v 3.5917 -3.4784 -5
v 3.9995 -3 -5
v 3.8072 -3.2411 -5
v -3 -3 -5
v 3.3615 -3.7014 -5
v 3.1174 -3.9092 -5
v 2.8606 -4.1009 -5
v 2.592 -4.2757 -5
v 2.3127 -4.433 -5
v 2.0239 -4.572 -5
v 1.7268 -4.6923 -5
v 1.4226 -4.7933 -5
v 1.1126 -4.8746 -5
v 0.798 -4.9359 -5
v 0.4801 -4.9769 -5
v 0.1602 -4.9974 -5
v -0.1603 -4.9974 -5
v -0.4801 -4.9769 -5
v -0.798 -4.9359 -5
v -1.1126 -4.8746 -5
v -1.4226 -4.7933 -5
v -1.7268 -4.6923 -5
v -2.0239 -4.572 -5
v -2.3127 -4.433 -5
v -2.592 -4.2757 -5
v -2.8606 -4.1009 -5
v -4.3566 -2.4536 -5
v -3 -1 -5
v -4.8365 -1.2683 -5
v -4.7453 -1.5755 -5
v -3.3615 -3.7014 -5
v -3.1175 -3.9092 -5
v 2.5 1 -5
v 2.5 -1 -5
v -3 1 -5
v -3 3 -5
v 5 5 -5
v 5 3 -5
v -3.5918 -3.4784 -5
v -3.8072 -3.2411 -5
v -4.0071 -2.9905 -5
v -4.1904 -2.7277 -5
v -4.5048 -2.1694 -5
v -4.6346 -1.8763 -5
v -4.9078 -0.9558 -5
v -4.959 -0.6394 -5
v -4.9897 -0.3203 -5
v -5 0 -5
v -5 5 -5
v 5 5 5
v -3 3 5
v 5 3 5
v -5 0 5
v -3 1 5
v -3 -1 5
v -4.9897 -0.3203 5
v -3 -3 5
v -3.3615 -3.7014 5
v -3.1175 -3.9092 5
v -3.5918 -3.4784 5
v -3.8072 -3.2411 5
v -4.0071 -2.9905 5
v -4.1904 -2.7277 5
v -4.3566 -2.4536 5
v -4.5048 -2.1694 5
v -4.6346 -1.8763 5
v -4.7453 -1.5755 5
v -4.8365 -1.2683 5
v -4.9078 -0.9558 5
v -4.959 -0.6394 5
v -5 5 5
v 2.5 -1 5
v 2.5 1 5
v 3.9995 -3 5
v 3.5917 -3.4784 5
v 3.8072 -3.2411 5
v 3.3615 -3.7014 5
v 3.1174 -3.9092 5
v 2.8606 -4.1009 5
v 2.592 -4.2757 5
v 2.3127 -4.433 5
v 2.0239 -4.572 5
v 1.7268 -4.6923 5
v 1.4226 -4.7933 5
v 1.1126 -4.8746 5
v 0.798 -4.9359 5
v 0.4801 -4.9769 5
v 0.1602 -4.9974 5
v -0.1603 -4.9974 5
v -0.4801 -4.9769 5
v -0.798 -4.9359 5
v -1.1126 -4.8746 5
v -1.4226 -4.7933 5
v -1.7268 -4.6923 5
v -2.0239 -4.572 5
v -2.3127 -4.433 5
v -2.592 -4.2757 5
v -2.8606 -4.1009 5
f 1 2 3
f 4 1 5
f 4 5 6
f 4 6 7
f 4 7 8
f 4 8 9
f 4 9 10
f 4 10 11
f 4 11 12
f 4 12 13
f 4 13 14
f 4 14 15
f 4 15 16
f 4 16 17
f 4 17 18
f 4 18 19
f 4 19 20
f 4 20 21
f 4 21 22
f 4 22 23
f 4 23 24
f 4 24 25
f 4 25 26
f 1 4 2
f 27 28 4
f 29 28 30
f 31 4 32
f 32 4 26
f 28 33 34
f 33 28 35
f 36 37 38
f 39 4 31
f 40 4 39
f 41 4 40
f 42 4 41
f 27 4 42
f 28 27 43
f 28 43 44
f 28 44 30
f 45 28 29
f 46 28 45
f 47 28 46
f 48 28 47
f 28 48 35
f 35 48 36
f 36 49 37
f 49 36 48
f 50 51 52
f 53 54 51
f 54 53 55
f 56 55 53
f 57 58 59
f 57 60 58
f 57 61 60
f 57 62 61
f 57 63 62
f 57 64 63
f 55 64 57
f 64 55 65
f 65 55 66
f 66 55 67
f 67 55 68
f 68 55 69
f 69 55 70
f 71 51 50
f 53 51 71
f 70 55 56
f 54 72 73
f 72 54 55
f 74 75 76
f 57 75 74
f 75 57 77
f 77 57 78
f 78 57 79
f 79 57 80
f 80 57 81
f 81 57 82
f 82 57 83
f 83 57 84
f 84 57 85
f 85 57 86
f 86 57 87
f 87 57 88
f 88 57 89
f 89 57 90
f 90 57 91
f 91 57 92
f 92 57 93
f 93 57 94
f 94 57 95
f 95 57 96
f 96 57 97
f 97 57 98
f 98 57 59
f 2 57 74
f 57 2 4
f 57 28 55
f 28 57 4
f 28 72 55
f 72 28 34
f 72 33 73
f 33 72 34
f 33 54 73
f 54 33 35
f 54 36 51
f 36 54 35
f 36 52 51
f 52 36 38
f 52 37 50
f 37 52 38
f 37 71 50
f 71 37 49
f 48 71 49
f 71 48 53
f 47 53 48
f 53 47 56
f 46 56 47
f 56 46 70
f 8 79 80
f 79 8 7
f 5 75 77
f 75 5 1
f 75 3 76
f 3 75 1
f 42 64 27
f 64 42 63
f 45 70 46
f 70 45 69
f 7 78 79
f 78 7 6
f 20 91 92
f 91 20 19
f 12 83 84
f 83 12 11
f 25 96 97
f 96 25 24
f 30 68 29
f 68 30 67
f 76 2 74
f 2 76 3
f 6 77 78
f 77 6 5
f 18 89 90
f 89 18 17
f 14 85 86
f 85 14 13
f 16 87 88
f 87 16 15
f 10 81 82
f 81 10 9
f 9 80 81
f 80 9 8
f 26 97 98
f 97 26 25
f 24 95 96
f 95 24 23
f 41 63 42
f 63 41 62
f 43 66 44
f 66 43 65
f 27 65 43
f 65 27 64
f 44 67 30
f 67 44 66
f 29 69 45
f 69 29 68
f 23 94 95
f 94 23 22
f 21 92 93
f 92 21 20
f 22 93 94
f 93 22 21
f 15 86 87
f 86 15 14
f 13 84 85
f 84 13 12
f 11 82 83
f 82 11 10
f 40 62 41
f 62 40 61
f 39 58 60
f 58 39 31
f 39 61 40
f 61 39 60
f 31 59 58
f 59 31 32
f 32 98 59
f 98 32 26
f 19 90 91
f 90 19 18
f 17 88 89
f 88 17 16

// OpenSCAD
// Generated by SolidPython 1.1.3 on 2025-02-20 04:04:10
$fn=50;


intersection() {
	translate(v = [-5.0000000000, -5.0000000000, -5.0000000000]) {
		linear_extrude(height = 10) {
			polygon(points = [[0, 0], [10, 0], [10, 2.0000000000], [2.0000000000, 2.0000000000], [2.0000000000, 4.0000000000], [7.5000000000, 4.0000000000], [7.5000000000, 6.0000000000], [2.0000000000, 6.0000000000], [2.0000000000, 8.0000000000], [10, 8.0000000000], [10, 10], [0, 10]]);
		}
	}
	rotate(a = -90, v = [0, 0, 1]) {
		translate(v = [-5.0000000000, -5.0000000000, -5.0000000000]) {
			linear_extrude(height = 10) {
				polygon(points = [[5.0000000000, 10.0000000000], [5.3203510999, 9.9897269638], [5.6393858084, 9.9589500691], [5.9557931435, 9.9077957850], [6.2682729195, 9.8364743152], [6.5755410901, 9.7452787351], [6.8763350244, 9.6345837867], [7.1694186956, 9.5048443395], [7.4535877600, 9.3565935206], [7.7276745061, 9.1904405245], [7.9905526525, 9.0070681093], [8.2411419765, 8.8072297918], [8.4784127530, 8.5917467505], [8.7013899854, 8.3615044513], [8.9091574123, 8.1174490093], [9.1008612730, 7.8605833006], [9.2757138150, 7.5919628416], [9.4329965319, 7.3126914512], [9.5720631151, 7.0239167156], [9.6923421102, 6.7268252721], [9.7933392652, 6.4226379332], [9.8746395609, 6.1126046698], [9.9359089171, 5.7979994752], [9.9768955647, 5.4801151295], [9.9974310810, 5.1602578879], [9.9974310810, 4.8397421121], [9.9768955647, 4.5198848705], [9.9359089171, 4.2020005248], [9.8746395609, 3.8873953302], [9.7933392652, 3.5773620668], [9.6923421102, 3.2731747279], [9.5720631151, 2.9760832844], [9.4329965319, 2.6873085488], [9.2757138150, 2.4080371584], [9.1008612730, 2.1394166994], [8.9091574123, 1.8825509907], [8.7013899854, 1.6384955487], [8.4784127530, 1.4082532495], [8.2411419765, 1.1927702082], [7.9905526525, 0.9929318907], [7.7276745061, 0.8095594755], [7.4535877600, 0.6434064794], [7.1694186956, 0.4951556605], [6.8763350244, 0.3654162133], [6.5755410901, 0.2547212649], [6.2682729195, 0.1635256848], [5.9557931435, 0.0922042150], [5.6393858084, 0.0410499309], [5.3203510999, 0.0102730362], [5.0000000000, 0.0000000000], [0, 0], [0, 10]]);
			}
		}
	}
}
/***********************************************
*********      SolidPython code:      **********
************************************************
 
from solid import *
from solid.utils import *

import math
import matplotlib.pyplot as plt
import subprocess
import os

class Hole:
    def __init__(self, x, y, radius):
        """
        Hole defined by:
        :param x: x dimension for center point of the circle as a ratio of letter height
        :param y: y dimension for center point of the circle as a ratio of letter height
        :param radius: radius of circle as a ratio of letter height
        """
        self.x = x
        self.y = y
        self.radius = radius

class Letter3D:
    def __init__(self, name, outer_shape_points, height, holes=None):
        """
        3D Letter defined by:
        :param name: name of letter
        :param outer_shape_points: points defining the outer shape of the letter
        :param heigh: size of cube that letter fits inside
        :param holes: list of Holes
        """
        self.name = name
        self.outer_shape_points = outer_shape_points
        self.holes = holes if holes is None else []
        self.height = height


    def generate(self):
        shape = polygon(points=self.outer_shape_points)

        if self.holes:
            for hole in self.holes:
                circle_hole = circle(r=hole.radius*self.height)
                positioned_hole = translate([hole.x*self.height, hole.y*self.height])(circle_hole)
                shape = difference()(shape, positioned_hole)
        
        shape_3d = linear_extrude(height=self.height)(shape)
        shape_3d = translate([-self.height/2, -self.height/2, -self.height/2])(shape_3d)
        return shape_3d
    
    def render(self):
        scad_render_to_file(self.shape, f"output/{self.name}.scad", file_header='$fn=50;')
        subprocess.run(["C:\\Program Files\\OpenSCAD\\openscad.exe", "-o", f"output\\{self.name}.stl", f"output\\{self.name}.scad"])


class TwoLetter3D:
    def __init__(self, height, letterA, letterA_face, letterB=None, letterB_face=None):
        self.height = height
        self.letterA = letterA
        self.letterB = letterB
        self.letterA_face = letterA_face
        self.letterB_face = letterB_face

    def call_letter_generation(self, letter):
        letter = letter.upper()
        function_name = f"letter_{letter}"
        func = globals().get(function_name)
        if func is None:
            raise ValueError(f"No letter generation function defined for letter '{letter}'.")
        else:
            print(func)
        return func(self.height)
    
    def rotate_object(self, face, shape):
        face = face.lower()
        if face == "z":
            return shape
        if face == "x":
            return rotate(a=90, v=[0,1,0])(shape)
        if face == "y":
            return rotate(a=-90, v=[0,0,1])(shape)
        else:
            raise ValueError("Face must be one of 'x', 'y', or 'z'.")

    def render(self):
        if self.letterA:
            letterA3D = self.call_letter_generation(self.letterA)
            letterA3D = self.rotate_object(self.letterA_face, letterA3D)

        if self.letterB:
            letterB3D = self.call_letter_generation(self.letterB)
            letterB3D = self.rotate_object(self.letterB_face, letterB3D)
            combined = intersection()(letterA3D, letterB3D)
            file_name = self.letterA + self.letterB
            scad_render_to_file(combined, f"output/{file_name}.scad", file_header='$fn=50;')
            subprocess.run(["C:\\Program Files\\OpenSCAD\\openscad.exe", "-o", f"output\\{file_name}.stl", f"output\\{file_name}.scad"])
            return
        else:
            file_name = self.letterA
            scad_render_to_file(letterA3D, f"output/{file_name}.scad", file_header='$fn=50;')
            subprocess.run(["C:\\Program Files\\OpenSCAD\\openscad.exe", "-o", f"output\\{file_name}.stl", f"output\\{file_name}.scad"])
    
                

def arc_points(radius, start_angle, end_angle, center=[0,0], num_points=50):
    angles = [start_angle + i * (end_angle - start_angle) / (num_points - 1)
              for i in range(num_points)]
    points = [
        (center[0] + radius * math.cos(math.radians(angle)),
         center[1] + radius * math.sin(math.radians(angle)))
        for angle in angles
    ]
    return points

def letter_A(h):
    shape_points = [(0,0), (h/2, h), (h, 0), (5/6*h, 0), (2/3*h, 1/3*h), (1/3*h, 1/3*h), (h/6, 0)]
    holes = [Hole(1/2, 7/12, 1/6)]
    A = Letter3D("A", shape_points, h, holes)
    return A.generate()

def letter_B(h):
    top_arc_points = arc_points(h/4, 90, -90, center=[3/4*h, 3/4*h])
    bottom_arc_points = arc_points(h/4, 90, -90, center=[3/4*h, h/4])
    other_points = [(0,0),(0,h)]

    shape_points = top_arc_points + bottom_arc_points + other_points
    holes = [Hole(1/2, 3/4, 1/6), Hole(1/2, 1/4, 1/6)]
    B = Letter3D("B", shape_points, h, holes)
    return B.generate()

def letter_C(h):
    outer_arc_points = arc_points(h/2, 30, 330, center=[h/2,h/2])
    inner_arc_points = arc_points(h/4, 30, 330, center=[h/2,h/2])[::-1]
    shape_points = outer_arc_points + inner_arc_points
    # print(shape_points)
    C = Letter3D("C", shape_points, h)
    return C.generate()


def letter_D(h):
    outer_arc_points = arc_points(h/2, 90, -90, center= [h/2, h/2])
    shape_points = outer_arc_points + [(0,0), (0, h)]
    holes = [Hole(1/2, 1/2, 1/6)]
    D = Letter3D("D", shape_points, h, holes)
    return D.generate()

def letter_E(h):
    points = [(0,0), (h,0), (h,h/5), (h/5,h/5), (h/5,2/5*h), (3/4*h,2/5*h), (3/4*h,3/5*h), (h/5,3/5*h), (h/5,4/5*h), (h,4/5*h), (h,h), (0,h)]
    E = Letter3D("E", points, h)
    return E.generate()

def letter_F(h):
    points = [(0,0), (h/5,0), (h/5,2/5*h), (3/4*h,2/5*h), (3/4*h,3/5*h), (h/5,3/5*h), (h/5,4/5*h), (h,4/5*h), (h,h), (0,h)]
    F = Letter3D("F", points, h)
    return F.generate()

if __name__ == "__main__":
    os.makedirs("output", exist_ok=True)
    
    letters = [chr(x) for x in range(ord('A'), ord('F') + 1)]
    for letter in letters:
        for other_letter in letters:
            shape = TwoLetter3D(10, letter, "z", other_letter, "y")
            shape.render()
 
 
************************************************/
